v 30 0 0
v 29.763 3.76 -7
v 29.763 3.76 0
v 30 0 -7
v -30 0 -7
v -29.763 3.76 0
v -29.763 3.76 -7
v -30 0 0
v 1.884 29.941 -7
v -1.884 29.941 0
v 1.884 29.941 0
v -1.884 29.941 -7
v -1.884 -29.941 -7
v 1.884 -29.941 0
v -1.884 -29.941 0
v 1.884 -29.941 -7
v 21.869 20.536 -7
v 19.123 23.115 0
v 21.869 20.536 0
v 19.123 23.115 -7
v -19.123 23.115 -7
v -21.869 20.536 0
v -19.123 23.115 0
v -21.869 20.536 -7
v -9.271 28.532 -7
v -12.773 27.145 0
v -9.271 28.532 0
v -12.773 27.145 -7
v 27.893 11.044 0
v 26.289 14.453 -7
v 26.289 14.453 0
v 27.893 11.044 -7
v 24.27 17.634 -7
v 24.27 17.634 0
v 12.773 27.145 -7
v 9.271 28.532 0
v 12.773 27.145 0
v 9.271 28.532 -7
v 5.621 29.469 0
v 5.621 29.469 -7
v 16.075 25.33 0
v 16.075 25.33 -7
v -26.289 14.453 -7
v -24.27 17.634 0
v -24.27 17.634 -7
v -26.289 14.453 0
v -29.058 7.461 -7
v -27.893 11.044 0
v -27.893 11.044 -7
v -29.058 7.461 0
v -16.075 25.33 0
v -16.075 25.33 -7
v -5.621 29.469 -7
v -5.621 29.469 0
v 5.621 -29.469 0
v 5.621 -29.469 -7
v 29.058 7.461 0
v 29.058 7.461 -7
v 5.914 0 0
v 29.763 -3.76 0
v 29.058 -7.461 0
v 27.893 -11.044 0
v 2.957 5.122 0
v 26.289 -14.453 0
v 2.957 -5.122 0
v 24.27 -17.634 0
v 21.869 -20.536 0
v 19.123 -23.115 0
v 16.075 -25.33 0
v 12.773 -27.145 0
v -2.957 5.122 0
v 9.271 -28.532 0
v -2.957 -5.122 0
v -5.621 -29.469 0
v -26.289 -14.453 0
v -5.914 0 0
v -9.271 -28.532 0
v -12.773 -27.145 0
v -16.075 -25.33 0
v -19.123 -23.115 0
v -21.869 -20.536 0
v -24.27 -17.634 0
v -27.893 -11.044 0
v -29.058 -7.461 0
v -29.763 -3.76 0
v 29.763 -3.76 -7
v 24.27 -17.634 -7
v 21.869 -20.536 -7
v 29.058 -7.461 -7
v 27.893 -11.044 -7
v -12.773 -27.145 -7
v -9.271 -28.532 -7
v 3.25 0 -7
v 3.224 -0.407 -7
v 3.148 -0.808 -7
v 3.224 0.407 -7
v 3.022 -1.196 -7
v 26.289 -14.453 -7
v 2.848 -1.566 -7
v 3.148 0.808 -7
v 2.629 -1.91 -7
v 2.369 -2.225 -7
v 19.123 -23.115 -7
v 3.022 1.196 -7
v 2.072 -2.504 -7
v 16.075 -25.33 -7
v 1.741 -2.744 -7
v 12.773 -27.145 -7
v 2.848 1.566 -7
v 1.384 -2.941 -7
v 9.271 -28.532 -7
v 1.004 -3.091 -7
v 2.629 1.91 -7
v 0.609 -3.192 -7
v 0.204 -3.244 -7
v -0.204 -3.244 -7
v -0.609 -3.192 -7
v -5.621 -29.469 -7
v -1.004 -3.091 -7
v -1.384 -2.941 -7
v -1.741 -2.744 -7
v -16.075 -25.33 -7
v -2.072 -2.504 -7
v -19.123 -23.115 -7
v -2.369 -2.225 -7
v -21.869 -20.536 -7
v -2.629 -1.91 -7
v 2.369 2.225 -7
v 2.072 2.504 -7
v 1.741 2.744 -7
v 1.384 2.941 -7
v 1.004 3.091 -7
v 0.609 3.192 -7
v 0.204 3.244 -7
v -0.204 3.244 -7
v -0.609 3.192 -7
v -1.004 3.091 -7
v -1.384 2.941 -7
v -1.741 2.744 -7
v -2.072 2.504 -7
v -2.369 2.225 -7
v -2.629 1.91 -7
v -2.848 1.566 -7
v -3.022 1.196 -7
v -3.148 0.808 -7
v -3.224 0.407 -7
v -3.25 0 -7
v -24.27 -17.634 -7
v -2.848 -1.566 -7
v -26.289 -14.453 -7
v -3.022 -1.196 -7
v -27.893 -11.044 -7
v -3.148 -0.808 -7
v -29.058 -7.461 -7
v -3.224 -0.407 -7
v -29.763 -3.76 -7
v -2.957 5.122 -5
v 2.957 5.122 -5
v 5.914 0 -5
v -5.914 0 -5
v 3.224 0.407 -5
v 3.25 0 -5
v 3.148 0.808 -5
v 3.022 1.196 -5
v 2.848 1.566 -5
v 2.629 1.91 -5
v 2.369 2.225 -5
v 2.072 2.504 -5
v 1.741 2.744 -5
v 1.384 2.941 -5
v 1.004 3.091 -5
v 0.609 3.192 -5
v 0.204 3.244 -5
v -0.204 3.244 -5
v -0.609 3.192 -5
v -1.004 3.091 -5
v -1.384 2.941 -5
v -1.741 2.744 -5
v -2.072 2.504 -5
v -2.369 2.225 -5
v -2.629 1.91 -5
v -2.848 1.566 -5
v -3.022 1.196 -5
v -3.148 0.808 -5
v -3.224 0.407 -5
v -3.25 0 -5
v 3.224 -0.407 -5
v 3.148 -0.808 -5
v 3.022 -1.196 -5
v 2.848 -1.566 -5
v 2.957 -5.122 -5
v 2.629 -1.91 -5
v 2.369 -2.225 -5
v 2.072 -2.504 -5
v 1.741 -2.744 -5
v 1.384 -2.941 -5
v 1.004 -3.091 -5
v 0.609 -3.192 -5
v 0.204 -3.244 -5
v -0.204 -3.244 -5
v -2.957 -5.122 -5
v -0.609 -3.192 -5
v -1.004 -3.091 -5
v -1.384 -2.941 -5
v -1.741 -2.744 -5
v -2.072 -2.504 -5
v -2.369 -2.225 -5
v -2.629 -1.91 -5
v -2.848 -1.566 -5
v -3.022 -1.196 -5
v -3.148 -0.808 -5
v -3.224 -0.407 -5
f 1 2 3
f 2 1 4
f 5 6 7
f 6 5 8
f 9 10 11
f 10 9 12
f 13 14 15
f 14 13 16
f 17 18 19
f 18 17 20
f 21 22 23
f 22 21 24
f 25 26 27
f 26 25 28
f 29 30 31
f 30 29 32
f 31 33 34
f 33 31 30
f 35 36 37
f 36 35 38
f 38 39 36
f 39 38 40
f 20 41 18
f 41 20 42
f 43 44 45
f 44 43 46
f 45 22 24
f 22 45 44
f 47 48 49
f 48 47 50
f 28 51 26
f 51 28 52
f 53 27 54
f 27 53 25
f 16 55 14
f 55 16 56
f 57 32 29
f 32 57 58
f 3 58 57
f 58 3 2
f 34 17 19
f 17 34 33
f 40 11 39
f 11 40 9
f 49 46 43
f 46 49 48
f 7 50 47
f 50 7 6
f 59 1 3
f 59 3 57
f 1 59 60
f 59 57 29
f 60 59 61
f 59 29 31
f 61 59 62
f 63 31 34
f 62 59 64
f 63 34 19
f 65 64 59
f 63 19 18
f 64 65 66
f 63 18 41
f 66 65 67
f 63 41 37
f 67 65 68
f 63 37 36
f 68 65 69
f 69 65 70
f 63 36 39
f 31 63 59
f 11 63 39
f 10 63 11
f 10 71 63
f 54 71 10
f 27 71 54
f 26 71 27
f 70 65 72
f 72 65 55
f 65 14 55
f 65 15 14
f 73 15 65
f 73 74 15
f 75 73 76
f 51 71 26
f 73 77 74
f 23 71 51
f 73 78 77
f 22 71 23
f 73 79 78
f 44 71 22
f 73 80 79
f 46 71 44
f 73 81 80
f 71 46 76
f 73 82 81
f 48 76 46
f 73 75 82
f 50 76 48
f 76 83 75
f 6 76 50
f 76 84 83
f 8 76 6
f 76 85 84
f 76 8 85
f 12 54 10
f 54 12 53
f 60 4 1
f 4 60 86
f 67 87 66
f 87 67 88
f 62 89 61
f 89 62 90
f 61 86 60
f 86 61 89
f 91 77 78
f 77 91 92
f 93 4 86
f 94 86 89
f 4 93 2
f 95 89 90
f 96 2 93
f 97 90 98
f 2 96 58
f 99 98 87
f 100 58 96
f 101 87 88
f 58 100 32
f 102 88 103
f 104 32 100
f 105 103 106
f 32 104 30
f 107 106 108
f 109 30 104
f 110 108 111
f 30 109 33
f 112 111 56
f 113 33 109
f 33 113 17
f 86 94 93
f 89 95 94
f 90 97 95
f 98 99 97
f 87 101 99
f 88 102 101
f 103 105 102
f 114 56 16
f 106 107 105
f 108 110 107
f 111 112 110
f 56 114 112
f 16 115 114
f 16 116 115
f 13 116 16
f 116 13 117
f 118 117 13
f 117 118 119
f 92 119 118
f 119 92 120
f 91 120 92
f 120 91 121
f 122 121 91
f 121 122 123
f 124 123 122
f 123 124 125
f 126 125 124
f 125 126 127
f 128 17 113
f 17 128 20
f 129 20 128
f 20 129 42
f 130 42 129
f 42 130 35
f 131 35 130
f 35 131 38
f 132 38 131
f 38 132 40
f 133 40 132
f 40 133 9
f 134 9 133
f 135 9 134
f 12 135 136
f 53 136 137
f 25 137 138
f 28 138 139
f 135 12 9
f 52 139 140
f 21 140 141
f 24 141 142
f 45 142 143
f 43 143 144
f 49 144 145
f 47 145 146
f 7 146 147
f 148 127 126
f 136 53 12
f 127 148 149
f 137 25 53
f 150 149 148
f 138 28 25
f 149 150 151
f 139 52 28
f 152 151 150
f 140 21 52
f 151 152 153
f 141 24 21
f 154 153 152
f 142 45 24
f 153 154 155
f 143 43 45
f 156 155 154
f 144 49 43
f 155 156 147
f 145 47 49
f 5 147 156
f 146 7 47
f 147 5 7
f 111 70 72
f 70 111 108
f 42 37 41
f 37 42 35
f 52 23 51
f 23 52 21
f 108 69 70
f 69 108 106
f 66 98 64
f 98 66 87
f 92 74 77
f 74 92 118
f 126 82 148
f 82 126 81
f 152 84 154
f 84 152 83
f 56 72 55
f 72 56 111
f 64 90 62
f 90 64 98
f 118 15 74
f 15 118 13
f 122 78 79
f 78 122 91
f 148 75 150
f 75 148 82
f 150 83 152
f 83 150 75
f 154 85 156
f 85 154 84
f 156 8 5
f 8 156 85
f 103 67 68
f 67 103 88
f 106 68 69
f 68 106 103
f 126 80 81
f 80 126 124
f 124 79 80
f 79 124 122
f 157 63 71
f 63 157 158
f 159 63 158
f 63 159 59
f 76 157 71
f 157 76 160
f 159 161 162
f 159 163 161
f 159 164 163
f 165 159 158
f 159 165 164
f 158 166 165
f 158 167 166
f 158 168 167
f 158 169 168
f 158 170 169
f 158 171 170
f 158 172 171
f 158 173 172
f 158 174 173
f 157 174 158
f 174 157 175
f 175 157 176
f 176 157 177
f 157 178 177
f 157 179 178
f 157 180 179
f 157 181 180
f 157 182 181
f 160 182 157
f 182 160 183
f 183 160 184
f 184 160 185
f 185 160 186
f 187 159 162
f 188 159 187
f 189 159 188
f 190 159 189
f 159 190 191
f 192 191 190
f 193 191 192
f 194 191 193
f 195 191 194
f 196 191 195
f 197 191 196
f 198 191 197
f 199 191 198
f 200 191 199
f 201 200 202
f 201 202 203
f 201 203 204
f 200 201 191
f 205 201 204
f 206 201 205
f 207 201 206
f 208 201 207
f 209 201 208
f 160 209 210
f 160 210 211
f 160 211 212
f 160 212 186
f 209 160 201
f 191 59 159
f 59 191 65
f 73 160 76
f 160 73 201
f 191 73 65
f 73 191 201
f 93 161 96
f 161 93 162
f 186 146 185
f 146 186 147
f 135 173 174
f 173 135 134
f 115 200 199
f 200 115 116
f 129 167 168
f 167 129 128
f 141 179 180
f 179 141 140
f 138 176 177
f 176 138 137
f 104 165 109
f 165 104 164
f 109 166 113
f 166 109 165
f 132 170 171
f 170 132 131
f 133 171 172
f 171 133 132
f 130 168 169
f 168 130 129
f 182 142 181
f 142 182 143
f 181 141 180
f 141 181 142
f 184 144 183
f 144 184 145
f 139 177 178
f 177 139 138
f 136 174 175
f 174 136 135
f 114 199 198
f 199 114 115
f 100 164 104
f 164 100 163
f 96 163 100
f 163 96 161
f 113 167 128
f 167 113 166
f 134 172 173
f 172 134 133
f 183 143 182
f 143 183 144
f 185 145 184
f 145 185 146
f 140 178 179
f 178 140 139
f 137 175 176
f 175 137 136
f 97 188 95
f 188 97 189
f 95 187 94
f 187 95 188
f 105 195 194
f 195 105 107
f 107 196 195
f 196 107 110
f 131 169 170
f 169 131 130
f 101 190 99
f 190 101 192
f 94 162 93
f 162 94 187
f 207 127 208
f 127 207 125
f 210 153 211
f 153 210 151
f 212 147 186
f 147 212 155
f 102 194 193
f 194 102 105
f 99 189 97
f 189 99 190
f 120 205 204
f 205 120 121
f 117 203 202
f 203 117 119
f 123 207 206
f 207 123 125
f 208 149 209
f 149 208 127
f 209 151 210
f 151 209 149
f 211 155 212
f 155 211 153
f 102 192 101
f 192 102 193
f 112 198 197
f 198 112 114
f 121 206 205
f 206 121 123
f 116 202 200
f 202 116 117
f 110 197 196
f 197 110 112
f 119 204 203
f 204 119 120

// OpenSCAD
$fn = 50;


difference() {
	union() {
		translate(v = [0, 0, -7.0000000000]) {
			cylinder(h = 7.0000000000, r = 30.0000000000);
		}
		#translate(v = [0, 0, -8.5000000000]) {
			cylinder(h = 8.5000000000, r = 2.8750000000);
		}
	}
	union() {
		translate(v = [0, 0, 0]) {
			rotate(a = [0, 0, 0]) {
				difference() {
					union() {
						translate(v = [0, 0, -5]) {
							linear_extrude(height = 5) {
								polygon(points = [[5.9142500000, 0.0000000000], [2.9571250000, 5.1218907443], [-2.9571250000, 5.1218907443], [-5.9142500000, 0.0000000000], [-2.9571250000, -5.1218907443], [2.9571250000, -5.1218907443]]);
							}
						}
					}
					union();
				}
			}
		}
		#translate(v = [0, 0, -100.0000000000]) {
			cylinder(h = 200, r = 3.2500000000);
		}
	}
}
